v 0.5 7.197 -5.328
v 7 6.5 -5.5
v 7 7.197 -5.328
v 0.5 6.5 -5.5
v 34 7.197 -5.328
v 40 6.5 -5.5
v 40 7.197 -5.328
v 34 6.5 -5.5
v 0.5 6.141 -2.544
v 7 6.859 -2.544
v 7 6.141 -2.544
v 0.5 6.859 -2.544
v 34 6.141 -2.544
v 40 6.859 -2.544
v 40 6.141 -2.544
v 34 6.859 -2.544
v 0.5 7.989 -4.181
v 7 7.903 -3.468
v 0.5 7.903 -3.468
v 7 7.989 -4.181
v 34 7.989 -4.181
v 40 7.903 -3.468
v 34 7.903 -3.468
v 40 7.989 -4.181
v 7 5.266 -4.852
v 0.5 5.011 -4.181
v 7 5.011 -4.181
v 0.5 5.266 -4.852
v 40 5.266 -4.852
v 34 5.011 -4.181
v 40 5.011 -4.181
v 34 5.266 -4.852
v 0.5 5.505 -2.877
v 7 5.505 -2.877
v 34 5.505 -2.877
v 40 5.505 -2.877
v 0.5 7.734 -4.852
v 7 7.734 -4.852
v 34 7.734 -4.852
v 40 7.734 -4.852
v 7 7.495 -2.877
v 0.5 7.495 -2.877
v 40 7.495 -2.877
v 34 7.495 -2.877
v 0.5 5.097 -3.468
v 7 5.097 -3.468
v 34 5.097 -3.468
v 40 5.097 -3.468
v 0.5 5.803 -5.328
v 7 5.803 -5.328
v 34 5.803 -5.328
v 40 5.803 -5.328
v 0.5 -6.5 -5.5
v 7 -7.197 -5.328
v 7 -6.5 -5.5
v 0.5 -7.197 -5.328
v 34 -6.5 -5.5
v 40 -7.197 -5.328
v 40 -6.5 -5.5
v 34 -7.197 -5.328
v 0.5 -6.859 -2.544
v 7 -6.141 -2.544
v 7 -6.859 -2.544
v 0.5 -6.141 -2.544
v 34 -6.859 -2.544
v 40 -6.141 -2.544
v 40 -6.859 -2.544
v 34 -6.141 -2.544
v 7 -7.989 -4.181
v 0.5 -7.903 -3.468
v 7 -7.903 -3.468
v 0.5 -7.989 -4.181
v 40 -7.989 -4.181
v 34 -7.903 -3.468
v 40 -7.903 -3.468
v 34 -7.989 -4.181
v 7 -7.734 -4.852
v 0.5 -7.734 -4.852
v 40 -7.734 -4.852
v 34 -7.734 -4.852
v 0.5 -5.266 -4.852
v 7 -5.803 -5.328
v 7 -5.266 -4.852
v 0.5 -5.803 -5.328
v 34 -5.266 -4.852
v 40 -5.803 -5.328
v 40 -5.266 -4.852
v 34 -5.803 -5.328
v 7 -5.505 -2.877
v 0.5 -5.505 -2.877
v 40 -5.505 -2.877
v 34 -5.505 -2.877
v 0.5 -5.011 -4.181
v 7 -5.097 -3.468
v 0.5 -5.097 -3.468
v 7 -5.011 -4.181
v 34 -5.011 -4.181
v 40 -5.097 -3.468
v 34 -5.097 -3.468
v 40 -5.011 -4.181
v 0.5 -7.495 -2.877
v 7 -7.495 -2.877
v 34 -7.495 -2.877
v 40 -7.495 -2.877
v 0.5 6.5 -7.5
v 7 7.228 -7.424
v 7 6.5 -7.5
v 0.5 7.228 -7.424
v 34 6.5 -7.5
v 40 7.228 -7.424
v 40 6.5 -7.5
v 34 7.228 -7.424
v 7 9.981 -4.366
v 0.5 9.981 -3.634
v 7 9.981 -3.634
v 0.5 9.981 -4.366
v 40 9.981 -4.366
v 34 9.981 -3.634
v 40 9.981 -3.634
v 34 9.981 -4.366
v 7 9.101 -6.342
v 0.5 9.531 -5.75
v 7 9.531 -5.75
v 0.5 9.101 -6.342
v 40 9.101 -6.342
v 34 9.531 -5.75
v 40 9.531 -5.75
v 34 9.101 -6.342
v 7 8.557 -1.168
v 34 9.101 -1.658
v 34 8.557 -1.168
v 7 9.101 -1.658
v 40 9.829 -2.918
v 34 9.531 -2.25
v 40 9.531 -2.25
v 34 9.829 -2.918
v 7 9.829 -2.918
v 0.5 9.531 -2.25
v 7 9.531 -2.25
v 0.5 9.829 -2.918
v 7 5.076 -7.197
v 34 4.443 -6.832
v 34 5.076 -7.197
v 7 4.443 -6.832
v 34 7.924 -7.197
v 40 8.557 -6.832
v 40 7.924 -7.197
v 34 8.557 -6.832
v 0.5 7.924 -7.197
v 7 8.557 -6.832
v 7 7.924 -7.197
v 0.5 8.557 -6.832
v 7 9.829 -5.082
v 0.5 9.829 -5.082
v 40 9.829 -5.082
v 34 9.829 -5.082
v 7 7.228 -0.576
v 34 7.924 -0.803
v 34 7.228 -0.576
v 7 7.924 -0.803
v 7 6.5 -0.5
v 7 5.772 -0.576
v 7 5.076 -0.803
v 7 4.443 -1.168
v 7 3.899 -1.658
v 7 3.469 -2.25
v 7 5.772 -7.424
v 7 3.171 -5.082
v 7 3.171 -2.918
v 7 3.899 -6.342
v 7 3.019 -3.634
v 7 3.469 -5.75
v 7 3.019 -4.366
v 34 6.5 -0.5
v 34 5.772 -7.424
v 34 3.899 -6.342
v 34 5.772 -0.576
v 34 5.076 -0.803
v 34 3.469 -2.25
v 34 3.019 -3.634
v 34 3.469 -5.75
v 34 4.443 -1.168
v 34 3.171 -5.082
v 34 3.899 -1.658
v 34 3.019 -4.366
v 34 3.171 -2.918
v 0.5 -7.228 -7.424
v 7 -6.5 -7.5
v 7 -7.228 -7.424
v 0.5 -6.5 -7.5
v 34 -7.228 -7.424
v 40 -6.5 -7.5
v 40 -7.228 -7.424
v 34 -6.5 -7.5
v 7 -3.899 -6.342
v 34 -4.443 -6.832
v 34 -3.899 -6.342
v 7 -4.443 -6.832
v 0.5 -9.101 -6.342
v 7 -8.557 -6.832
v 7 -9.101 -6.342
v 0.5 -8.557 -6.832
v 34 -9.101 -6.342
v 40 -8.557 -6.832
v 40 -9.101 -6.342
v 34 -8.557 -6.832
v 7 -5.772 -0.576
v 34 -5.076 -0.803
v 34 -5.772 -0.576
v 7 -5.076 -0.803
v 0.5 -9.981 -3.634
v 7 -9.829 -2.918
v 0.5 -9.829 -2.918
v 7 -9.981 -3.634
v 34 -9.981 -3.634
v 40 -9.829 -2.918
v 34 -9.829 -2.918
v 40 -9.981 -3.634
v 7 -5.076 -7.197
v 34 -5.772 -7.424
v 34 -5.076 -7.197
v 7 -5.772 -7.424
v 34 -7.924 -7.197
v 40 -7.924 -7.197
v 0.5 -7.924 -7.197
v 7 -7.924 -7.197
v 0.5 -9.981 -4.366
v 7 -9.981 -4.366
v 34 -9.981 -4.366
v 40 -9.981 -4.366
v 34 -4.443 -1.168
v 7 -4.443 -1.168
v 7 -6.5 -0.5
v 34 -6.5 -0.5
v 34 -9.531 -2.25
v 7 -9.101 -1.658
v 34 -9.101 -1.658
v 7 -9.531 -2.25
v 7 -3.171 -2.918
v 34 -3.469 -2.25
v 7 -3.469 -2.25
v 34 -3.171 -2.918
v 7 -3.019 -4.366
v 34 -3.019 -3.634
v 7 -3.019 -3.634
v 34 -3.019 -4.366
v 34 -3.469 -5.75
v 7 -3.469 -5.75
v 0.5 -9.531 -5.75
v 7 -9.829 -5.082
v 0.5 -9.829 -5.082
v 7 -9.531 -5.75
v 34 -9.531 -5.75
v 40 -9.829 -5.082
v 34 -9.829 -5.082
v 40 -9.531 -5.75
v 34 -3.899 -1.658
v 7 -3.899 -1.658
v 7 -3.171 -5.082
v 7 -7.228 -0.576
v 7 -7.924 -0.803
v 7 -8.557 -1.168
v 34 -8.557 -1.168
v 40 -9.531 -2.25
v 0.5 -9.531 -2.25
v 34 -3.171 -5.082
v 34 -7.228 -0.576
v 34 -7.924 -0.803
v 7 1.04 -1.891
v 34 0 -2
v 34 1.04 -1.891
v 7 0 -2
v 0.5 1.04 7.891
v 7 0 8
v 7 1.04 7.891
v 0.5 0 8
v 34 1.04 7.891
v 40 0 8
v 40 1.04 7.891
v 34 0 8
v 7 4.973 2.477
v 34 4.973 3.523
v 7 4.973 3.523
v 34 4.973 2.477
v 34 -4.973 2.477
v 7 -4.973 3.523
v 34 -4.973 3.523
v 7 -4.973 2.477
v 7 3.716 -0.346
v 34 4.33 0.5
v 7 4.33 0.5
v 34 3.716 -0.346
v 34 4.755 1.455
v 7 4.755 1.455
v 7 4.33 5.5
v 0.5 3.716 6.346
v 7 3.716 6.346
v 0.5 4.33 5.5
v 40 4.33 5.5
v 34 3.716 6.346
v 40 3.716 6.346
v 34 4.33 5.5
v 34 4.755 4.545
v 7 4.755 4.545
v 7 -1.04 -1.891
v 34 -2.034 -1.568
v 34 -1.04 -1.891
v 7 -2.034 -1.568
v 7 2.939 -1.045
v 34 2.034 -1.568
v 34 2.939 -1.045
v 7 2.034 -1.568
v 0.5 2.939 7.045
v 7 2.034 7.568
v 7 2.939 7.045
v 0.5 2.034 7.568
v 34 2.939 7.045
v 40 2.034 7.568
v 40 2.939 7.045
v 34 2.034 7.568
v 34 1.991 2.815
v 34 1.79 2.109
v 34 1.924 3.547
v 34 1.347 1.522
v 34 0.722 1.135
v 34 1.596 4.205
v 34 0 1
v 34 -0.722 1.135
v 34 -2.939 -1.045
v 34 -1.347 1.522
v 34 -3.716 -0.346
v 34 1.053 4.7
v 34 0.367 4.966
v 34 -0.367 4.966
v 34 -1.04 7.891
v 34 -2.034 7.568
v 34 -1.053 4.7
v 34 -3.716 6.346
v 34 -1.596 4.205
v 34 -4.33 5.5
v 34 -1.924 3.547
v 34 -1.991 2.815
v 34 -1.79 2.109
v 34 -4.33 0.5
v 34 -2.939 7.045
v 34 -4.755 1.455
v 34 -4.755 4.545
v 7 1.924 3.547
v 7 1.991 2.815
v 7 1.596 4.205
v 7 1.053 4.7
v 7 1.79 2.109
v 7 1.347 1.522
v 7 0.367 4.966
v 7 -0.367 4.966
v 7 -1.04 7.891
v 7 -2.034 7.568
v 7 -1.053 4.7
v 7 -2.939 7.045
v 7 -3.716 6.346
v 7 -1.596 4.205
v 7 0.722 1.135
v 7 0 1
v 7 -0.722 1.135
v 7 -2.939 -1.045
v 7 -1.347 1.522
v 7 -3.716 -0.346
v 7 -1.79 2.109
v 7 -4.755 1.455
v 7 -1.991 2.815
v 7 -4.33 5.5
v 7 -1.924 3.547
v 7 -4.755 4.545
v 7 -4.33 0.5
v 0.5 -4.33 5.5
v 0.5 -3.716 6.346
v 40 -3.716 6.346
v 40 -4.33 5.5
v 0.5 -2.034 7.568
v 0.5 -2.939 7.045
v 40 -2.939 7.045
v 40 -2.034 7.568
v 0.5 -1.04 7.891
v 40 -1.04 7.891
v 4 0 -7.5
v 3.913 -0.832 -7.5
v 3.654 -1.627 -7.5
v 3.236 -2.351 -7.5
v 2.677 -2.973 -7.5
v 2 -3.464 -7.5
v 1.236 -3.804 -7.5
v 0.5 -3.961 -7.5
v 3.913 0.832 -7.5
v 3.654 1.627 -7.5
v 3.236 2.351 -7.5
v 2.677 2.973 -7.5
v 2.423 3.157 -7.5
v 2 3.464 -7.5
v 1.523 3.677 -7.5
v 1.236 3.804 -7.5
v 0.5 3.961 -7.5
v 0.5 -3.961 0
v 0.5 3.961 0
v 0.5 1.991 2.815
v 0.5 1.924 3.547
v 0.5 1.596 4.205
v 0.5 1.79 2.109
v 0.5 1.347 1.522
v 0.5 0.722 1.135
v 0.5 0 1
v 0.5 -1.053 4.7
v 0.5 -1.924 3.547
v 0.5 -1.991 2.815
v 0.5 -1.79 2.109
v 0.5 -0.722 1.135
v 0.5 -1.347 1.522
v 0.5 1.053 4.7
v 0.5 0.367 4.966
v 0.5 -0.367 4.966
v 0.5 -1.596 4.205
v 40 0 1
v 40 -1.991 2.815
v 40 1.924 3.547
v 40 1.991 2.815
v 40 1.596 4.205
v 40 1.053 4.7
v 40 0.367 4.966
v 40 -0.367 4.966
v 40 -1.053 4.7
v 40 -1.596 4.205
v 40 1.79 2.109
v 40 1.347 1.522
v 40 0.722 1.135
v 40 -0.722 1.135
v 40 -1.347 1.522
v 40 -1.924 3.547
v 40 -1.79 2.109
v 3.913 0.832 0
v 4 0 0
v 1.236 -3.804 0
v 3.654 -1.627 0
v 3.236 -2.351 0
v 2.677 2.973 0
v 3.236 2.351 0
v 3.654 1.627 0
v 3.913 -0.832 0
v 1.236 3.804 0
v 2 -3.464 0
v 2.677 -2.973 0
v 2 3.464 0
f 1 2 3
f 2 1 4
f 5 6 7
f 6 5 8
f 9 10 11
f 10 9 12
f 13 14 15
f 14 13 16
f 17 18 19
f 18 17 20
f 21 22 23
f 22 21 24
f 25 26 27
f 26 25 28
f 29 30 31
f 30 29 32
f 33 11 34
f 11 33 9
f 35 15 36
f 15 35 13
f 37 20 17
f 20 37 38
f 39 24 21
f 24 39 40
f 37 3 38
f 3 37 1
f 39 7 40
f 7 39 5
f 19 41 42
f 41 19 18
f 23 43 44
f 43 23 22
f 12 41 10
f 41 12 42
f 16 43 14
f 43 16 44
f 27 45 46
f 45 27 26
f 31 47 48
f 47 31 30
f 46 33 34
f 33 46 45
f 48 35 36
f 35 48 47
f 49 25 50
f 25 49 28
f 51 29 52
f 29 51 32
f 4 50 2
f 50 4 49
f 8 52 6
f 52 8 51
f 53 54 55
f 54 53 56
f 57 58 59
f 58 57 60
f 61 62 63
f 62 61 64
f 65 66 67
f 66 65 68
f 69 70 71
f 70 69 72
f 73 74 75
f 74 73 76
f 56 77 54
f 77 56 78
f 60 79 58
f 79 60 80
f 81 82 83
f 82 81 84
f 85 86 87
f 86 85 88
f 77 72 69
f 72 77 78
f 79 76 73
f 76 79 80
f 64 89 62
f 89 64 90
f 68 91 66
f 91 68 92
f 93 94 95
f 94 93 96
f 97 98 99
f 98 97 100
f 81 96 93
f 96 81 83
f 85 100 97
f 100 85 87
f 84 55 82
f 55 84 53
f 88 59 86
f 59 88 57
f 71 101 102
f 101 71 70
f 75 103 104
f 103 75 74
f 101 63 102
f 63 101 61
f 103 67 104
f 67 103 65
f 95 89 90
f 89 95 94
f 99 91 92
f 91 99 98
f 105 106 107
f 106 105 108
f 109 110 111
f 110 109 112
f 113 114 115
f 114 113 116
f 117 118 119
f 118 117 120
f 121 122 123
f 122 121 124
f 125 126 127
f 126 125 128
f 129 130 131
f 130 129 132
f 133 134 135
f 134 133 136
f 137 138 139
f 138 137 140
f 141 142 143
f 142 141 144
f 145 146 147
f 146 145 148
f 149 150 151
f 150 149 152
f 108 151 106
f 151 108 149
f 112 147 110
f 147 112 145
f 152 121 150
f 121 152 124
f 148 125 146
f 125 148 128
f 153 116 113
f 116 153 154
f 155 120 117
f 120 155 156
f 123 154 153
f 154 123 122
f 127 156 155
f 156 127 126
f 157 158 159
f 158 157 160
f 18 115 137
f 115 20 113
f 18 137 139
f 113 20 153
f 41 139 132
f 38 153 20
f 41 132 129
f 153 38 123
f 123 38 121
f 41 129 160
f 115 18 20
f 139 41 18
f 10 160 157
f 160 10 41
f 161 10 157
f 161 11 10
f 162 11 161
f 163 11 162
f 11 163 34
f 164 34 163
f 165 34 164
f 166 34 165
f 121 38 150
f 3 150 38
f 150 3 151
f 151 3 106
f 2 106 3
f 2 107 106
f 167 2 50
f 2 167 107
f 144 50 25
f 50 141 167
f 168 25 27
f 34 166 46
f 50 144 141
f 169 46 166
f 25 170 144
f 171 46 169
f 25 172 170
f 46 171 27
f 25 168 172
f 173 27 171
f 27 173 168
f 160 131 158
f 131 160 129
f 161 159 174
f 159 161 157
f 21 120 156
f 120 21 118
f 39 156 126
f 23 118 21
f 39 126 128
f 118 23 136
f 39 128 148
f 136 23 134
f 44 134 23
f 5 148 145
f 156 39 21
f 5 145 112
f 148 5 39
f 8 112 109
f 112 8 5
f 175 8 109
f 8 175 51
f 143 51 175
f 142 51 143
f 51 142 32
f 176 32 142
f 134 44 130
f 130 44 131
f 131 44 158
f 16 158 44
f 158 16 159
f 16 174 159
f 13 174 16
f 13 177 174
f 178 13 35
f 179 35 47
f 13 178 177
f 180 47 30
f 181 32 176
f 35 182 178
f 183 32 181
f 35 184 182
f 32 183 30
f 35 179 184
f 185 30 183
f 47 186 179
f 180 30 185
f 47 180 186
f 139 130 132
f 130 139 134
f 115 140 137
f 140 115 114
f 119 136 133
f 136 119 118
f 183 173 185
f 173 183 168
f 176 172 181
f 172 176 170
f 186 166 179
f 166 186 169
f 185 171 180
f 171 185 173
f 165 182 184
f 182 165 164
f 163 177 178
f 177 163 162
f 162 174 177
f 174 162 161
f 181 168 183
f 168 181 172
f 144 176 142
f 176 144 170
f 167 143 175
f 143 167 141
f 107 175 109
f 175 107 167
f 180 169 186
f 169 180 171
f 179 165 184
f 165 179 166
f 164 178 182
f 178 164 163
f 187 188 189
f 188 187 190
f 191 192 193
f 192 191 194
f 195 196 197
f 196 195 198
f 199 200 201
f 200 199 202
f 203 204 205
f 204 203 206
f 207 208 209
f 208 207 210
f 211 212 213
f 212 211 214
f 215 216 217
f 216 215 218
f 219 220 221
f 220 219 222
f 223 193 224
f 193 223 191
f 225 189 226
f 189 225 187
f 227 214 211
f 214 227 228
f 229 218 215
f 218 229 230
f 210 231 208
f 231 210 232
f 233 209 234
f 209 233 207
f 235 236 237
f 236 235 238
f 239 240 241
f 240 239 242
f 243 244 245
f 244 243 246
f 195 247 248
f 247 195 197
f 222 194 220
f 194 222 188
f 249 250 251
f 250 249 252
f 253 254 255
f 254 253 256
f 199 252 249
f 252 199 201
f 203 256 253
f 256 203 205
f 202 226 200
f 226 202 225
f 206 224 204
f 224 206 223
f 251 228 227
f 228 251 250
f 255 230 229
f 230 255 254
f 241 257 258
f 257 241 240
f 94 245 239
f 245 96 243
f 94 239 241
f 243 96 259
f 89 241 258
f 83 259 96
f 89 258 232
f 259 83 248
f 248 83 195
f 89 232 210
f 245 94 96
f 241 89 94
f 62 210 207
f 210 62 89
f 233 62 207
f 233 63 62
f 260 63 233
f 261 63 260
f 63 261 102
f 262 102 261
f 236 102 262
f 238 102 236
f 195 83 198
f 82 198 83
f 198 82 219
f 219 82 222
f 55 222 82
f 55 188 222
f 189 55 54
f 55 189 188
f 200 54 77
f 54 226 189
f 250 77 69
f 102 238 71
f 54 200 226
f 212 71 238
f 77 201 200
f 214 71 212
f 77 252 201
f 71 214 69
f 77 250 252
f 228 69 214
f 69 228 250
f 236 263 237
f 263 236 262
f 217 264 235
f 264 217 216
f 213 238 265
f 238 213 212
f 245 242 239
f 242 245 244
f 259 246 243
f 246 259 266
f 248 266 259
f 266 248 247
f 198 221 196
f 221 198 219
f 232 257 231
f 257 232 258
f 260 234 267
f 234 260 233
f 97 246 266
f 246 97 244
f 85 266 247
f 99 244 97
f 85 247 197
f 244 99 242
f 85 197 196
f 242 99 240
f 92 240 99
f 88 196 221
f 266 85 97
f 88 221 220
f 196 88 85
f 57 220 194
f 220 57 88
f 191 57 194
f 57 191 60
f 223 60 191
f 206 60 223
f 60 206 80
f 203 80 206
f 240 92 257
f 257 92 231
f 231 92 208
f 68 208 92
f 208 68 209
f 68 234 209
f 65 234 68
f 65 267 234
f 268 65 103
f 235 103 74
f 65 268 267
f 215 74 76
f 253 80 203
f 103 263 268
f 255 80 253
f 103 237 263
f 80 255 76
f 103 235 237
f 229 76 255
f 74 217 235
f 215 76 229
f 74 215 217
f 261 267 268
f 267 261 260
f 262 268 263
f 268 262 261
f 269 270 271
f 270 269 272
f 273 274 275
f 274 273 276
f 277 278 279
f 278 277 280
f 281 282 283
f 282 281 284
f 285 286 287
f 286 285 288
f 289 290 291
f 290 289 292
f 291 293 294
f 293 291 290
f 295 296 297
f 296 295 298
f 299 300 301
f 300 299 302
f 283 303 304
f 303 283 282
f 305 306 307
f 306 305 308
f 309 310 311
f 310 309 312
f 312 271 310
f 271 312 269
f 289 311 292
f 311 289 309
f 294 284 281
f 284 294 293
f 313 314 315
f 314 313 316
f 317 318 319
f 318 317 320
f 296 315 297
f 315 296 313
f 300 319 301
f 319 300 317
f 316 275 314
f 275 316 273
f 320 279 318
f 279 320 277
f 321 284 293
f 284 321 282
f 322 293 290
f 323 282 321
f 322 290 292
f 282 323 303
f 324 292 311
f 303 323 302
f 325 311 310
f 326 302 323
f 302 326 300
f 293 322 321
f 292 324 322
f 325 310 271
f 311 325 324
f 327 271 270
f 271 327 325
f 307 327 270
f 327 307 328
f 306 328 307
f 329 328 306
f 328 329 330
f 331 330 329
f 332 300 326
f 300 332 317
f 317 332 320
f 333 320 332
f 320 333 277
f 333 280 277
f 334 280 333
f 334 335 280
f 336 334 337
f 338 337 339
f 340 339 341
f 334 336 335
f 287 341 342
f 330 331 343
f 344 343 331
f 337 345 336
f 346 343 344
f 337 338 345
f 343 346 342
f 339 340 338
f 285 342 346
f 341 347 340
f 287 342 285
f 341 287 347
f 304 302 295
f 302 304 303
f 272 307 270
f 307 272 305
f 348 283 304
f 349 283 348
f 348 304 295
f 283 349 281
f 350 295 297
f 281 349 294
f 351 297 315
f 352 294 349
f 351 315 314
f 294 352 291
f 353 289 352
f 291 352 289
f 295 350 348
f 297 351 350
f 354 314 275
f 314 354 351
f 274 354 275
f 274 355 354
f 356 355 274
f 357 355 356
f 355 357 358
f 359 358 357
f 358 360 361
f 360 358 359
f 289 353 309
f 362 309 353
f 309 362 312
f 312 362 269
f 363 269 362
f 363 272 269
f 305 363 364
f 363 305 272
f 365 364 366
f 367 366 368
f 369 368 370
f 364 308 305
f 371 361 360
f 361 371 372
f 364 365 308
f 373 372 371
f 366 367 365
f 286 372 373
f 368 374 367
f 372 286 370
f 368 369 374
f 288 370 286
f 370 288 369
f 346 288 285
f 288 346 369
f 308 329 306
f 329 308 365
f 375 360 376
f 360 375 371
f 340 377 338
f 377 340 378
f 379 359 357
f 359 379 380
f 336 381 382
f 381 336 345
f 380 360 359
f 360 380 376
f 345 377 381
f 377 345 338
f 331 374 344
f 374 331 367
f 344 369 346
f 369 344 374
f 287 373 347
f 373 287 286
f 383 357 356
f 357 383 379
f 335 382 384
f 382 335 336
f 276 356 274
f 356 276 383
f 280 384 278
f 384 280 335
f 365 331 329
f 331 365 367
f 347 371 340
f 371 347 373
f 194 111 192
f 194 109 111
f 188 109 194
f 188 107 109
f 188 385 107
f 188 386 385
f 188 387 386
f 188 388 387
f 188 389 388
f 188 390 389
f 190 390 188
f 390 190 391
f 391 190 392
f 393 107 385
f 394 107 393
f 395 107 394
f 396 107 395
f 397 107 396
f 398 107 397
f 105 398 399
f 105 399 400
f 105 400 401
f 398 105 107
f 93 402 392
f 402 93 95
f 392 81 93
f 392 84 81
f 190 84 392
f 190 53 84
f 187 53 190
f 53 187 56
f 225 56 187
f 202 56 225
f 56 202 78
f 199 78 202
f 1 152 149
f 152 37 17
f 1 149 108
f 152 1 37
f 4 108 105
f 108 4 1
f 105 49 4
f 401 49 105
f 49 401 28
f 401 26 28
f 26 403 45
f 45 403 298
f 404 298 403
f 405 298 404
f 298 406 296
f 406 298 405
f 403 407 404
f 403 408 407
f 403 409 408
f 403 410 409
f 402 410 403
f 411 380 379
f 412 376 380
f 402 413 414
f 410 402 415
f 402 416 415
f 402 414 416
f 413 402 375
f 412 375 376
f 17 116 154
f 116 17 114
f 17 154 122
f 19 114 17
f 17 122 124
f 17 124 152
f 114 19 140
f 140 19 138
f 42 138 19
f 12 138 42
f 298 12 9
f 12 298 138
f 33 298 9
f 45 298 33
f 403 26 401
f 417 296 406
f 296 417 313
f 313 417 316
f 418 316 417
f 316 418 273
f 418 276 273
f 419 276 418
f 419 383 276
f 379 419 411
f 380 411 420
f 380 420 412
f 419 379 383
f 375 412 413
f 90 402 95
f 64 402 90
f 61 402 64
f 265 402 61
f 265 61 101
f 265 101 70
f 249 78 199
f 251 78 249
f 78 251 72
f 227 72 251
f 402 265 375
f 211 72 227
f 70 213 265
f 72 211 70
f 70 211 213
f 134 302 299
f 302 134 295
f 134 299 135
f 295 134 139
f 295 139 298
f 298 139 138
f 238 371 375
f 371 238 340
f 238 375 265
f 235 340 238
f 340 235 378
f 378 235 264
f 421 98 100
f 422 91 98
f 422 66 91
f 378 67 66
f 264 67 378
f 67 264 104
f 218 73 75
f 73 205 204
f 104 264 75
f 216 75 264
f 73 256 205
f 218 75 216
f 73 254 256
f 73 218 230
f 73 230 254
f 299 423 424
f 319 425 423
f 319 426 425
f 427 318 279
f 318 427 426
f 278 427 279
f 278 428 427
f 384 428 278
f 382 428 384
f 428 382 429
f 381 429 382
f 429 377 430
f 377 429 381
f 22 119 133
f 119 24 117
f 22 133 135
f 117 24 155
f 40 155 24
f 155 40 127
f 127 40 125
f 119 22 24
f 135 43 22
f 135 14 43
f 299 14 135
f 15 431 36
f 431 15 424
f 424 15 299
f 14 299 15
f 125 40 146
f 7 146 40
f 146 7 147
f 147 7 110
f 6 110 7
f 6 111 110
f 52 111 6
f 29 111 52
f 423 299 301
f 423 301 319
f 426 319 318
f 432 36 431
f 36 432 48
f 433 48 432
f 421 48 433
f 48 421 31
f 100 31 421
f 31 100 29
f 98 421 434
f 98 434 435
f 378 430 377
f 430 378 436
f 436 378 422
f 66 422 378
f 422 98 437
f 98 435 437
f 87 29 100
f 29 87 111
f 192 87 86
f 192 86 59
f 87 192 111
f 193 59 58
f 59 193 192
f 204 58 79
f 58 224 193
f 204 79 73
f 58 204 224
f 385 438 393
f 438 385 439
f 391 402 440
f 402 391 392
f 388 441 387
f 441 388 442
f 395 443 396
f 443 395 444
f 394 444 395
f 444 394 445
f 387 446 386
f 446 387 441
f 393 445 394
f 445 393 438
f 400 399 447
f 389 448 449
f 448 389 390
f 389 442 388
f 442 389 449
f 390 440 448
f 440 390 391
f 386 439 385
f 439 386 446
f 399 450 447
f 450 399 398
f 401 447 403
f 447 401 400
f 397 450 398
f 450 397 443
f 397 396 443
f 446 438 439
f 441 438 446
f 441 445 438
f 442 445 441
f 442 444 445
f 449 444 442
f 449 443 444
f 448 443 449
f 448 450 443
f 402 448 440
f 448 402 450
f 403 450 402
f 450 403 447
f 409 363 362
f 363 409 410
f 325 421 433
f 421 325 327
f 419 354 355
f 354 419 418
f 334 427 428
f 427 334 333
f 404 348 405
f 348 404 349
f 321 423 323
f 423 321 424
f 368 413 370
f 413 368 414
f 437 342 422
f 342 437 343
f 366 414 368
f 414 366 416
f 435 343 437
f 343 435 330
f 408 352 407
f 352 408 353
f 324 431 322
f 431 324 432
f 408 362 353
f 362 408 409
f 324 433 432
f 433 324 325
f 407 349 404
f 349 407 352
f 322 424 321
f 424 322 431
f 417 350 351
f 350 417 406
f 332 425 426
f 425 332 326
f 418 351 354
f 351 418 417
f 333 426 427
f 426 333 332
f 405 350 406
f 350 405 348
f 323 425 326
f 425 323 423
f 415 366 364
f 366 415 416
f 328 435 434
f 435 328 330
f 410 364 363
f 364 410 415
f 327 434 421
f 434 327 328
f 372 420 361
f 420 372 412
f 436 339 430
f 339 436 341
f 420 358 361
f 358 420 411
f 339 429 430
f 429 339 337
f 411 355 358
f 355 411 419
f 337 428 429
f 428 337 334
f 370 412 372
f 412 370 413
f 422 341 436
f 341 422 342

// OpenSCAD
$fs=.75;

rotate(a = [0, 90, 0]) {
	difference() {
		translate(v = [0, 0, 0.5000000000]) {
			hull() {
				union() {
					translate(v = [4, 6.5000000000, 0]) {
						cylinder(d = 7, h = 39.5000000000);
					}
					mirror(v = [0, 1, 0]) {
						translate(v = [4, 6.5000000000, 0]) {
							cylinder(d = 7, h = 39.5000000000);
						}
					}
				}
				translate(v = [-3, 0, 0]) {
					cylinder(d = 10, h = 39.5000000000);
				}
			}
		}
		rotate(a = [0, 90, 0]) {
			cylinder(d = 8.0000000000, h = 20);
		}
		union() {
			translate(v = [4, 6.5000000000, 0]) {
				translate(v = [0, 0, -50.0000000000]) {
					cylinder(d = 3, h = 100);
				}
			}
			mirror(v = [0, 1, 0]) {
				translate(v = [4, 6.5000000000, 0]) {
					translate(v = [0, 0, -50.0000000000]) {
						cylinder(d = 3, h = 100);
					}
				}
			}
		}
		translate(v = [-3, 0, 0]) {
			translate(v = [0, 0, -50.0000000000]) {
				cylinder(d = 4, h = 100);
			}
		}
		translate(v = [0, 0, 7]) {
			union() {
				translate(v = [4, 6.5000000000, 0]) {
					cylinder(d = 7, h = 27.0000000000);
				}
				mirror(v = [0, 1, 0]) {
					translate(v = [4, 6.5000000000, 0]) {
						cylinder(d = 7, h = 27.0000000000);
					}
				}
				translate(v = [-3, 0, 0]) {
					cylinder(d = 10, h = 27.0000000000);
				}
			}
		}
	}
}
/***********************************************
*********      SolidPython code:      **********
************************************************
 
from solid import *
from solid import extensions

class Object:
    pass


rod=Object()
rod.d=8.0

nema17 = Object()
nema17.side = 43.
nema17.holeDistance = 31.0
nema17.screwD= 3.
nema17.height = 34. #47 for the long ones, 34 for the short ones


bearing = Object()
bearing.outD = 15.0
bearing.length = 24.0

# to place the rod supports on top of the nema17
supportDepth=10
xRodHole = cylinder(d=rod.d, h=20).rot(y=90)
xSupport = ( cube([supportDepth,nema17.side,rod.d/2+1]).align('left','bottom')
             - xRodHole.move(z=-.5)
             - cylinder(d=nema17.screwD,h=12).center().move(x=5,y=nema17.holeDistance/2.).mirrorCopy('y')
           ).rot(x=180)


bearingShape = cylinder(d=bearing.outD, h= bearing.length+1).center()

#minimal y cart, z motor will be placed in between the rails
yRodDistance = 60.0 # rounding up from nema17.side + bearing.outD
wall=2.0
cartWidth = 2*bearing.length
yBearings = bearingShape.move(z=bearing.length/2).mirrorCopy('z').move(x=yRodDistance/2).mirrorCopy('x')
yCart = ( ( cylinder(d= bearing.outD + 2*wall, h= cartWidth).center().rot(x=90).move(x=yRodDistance/2).mirrorCopy('x')
          + cube([yRodDistance, cartWidth, bearing.outD/2+wall]).align('bottom').move(z=-bearing.outD/2-wall)
          + cube([yRodDistance+bearing.outD+2*wall, cartWidth, bearing.outD/2+wall]).align('top').move(z=bearing.outD/2+wall)

          ) - yBearings.rot(x=90)
            - cube([nema17.side, cartWidth, bearing.outD/2-3]).align('top')
            - cube([nema17.side, cartWidth, bearing.outD]).align('bottom')
            - cube([yRodDistance+20, cartWidth, 3]).align('bottom').move(z=-bearing.outD/2-wall)
            - cylinder(d=3,h=10).move([nema17.holeDistance/2, nema17.holeDistance/2, -bearing.outD/2]).mirrorCopy('x').mirrorCopy('y').debug()
            - cylinder(d=nema17.holeDistance, h =10).move(z=-bearing.outD/2)
          )



#supports for holding the y rods in from the x bearings
bearingCover = cylinder(d= bearing.outD + 2*wall, h= bearing.length).center().rot(y=90)
baseBlock = hull( bearingCover
                  + cube([bearing.outD+2,10,bearing.outD+2]).align('back').move(y=bearing.outD/2+wall))
capScrews = cylinder(d=3., h=bearing.outD + 2*wall).center().move(x=rod.d/2+3./2+1,y=12).mirrorCopy('x')
rodHole = cylinder(d=rod.d,h=10).rot(x=-90).move(y=bearing.outD/2+wall)
#capTopBase = cube([bearing.length, 11, bearing.outD]).center('x').move(y=bearing.outD/2+wall)
#capTopBase = polygon([[0,0],[0,10],[10,10],[10,-3]]).linear_extrude(bearing.length,True).rot(y=-90).move(y=bearing.outD/2+wall)
capTopBase = cube([bearing.length, 20, bearing.outD]).center('x')-bearingCover

baseSupport = baseBlock - rodHole - capScrews

ySupport = part(cylinder(d= bearing.outD + 2*wall, h= yRodDistance + bearing.length).center().rot(y=90)
                 - hole(cylinder(d= bearing.outD, h= yRodDistance + bearing.length).center().rot(y=90))
                 + ( baseSupport
                     * cube(50).align('top')
                   ).move(x=yRodDistance/2).mirrorCopy('x')
                 - cube(1000).align('top').move(z=-bearing.outD/2+1)
                 )

ySupportRodCap = ( baseSupport
                * capTopBase
                - cube([bearing.length,50,1]).align('bottom')
                - cube([bearing.length,10,10]).center('xy')
                )

#support for z rods placed on the falt surface of the yCart above the bearings
zRodDistance = 31.
rodSupport = (cylinder(d=rod.d + 3, h=6) - cylinder(d=rod.d, h=6+1)).move(y=zRodDistance / 2)
beltGuide = ( cube([bearing.outD, bearing.length-zRodDistance/2, 6]).center('x')
              - cylinder(d=rod.d + 6,h=6+1)
              - cube([1,20,6+1]).center('x')).move(y=zRodDistance/2)
zSupport = ( cube([bearing.outD,2*bearing.length,wall]).center('xy')
             + rodSupport.move(z=wall).mirrorCopy('y')
             + beltGuide.move(z=wall).mirrorCopy('y')
           )

zstepper = cube([nema17.side,nema17.side,34]).center('xy').move(z=-bearing.outD/2).color('gray')


yCartZSupport = yCart + zSupport.move(x=yRodDistance/2 ,z=bearing.outD/2)


def xTailBase(h):
    return hull([cylinder(d=3+4,h=h).move(x= 4, y=3./2+rod.d/2+1).mirrorCopy('y'),
                 cylinder(d=4+6, h=h).move(x=-3)
                ]).move(z=.5)

capScrewHoles = cylinder(d=3,h=100).center().move(x= 4, y=3./2+rod.d/2+1).mirrorCopy('y')
pulleyScrewHole = cylinder(d=4,h=100).center().move(x= -3)
nutCuts = (cylinder(d=3+4,h=nema17.height-7).move(x= 4, y=3./2+rod.d/2+1).mirrorCopy('y')
          + cylinder(d=4+6, h=nema17.height-7).move(x=-3)).move(z=7)
xTailSupport = ( xTailBase(nema17.height+1.5+rod.d/2.)
                 - xRodHole
                 - capScrewHoles
                 - pulleyScrewHole
                 - nutCuts
               )
xTailCap = ( xTailBase(7)
             - xRodHole
             - capScrewHoles
             - pulleyScrewHole
            )

def xFrontBase(h):
    return hull([cylinder(d=3+4,h=h).move(y=3./2+rod.d/2+1).mirrorCopy('y'),
                ]).move(x=3.5,z=.5)

capScrewHoles = cylinder(d=3,h=100).center().move(x=3.5,y=3./2+rod.d/2+1).mirrorCopy('y')
nutCuts = (cylinder(d=3+4,h=nema17.height-7).move(x=3.5,y=3./2+rod.d/2+1).mirrorCopy('y')
          ).move(z=7)
xSupportH=nema17.height+1.5+rod.d/2.
nemaSupport = ( hull(cube([10,nema17.side,1.5]).align('right','top').move(z=xSupportH-nema17.height)
                     + cylinder(d=3+4,h=xSupportH-nema17.height-.5).move(y=3./2+rod.d/2+1).mirrorCopy('y').move(x=3.5,z=.5)
                    )
                - cylinder(d=3,h=10).move(x=-(nema17.side-nema17.holeDistance)/2,y=nema17.holeDistance/2).mirrorCopy('y'))
nemaSupport = ( hull(cylinder(d=3+4,h=1.5).move(x=-(nema17.side-nema17.holeDistance)/2,y=nema17.holeDistance/2,z=xSupportH-nema17.height).mirrorCopy('y')
                     + cylinder(d=3+4,h=xSupportH-nema17.height-.5).move(y=3./2+rod.d/2+1).mirrorCopy('y').move(x=3.5,z=.5)
                    )
                - cylinder(d=3,h=10).move(x=-(nema17.side-nema17.holeDistance)/2,y=nema17.holeDistance/2).mirrorCopy('y'))
xFrontSupport = ( xFrontBase(xSupportH)
                 + nemaSupport
                 - xRodHole.move(x=-10)
                 - capScrewHoles
                 - nutCuts
               )
xFrontCap = ( xFrontBase(7)
             - xRodHole.move(x=-10)
             - capScrewHoles
            )


zTopH=5.
zBearingD = 16.
zTopBase = hull(cylinder(d=rod.d+6,h=zTopH).move(y=zRodDistance/2).mirrorCopy('y')
            +cylinder(d=zBearingD+6,h=zTopH).move(x=-yRodDistance/2))
zHoles =  (cylinder(d=rod.d,h=zTopH).move(y=zRodDistance/2).mirrorCopy('y')
           + cylinder(d=zBearingD,h=zTopH).move(x=-yRodDistance/2))
zTop = zTopBase - zHoles




zNutD0 = 10.
zNutD1 = 22.
zNutH0 = 10.
drillD = 36.

base = ( hull(cylinder(d=bearing.outD+6,h=bearing.length).move(y=zRodDistance/2).mirrorCopy('y')
              + cylinder(d=zNutD1+2,h=bearing.length).move(x=-yRodDistance/2)
              + cylinder(d=drillD+6,h=bearing.length).move(x=drillD/2+5)
              + cube([.1,25,zNutH0]).center('y').move(x=drillD+5)
              )
            + cube([8,25,zNutH0]).center('y').move(x=drillD+5)
        )

holes =  (cylinder(d=bearing.outD, h=bearing.length).move(y=zRodDistance/2).mirrorCopy('y')
           + cylinder(d=zNutD0+1,h=bearing.length).move(x=-yRodDistance/2)
           + cylinder(d=drillD,h=bearing.length).move(x=drillD/2+5)
           + cube([20,2,zNutH0]).center('xy').move(x=drillD+7)
           + cylinder(d=3,h=30).center().rot(x=90).move(x=drillD+9,z=zNutH0/2).debug()
           )

zNutDrills = cylinder(d=3,h=bearing.length).move(x=17./2).rot(z=45).mirrorCopy('y').mirrorCopy('x').move(x=-yRodDistance/2)

def ushape(p,f=.5):
    return (cylinder(d=100.*f,h=100.).center().rot(x=90)-cube([500.*f,100,100]).center('yz')
            +cube([50.*(1-f),100.,100.*f]).center('yz')

           ).move(x=(.5-f)*-50).resize(p)

pD=[40,60,30]
pN=[35,60,30]
profileCuts = (ushape(pD,.5).move(x=pD[0]/2+bearing.outD/2,z=pD[2]/2+zNutH0)+
           ushape(pN,.4).mirror('x').move(x=-pN[0]/2-bearing.outD/2,z=pN[2]/2+zNutH0)
          )

sideCuts = cube([100,20,bearing.length]).center('x').move(y=zRodDistance/2+bearing.outD/2-1).mirrorCopy('y')

zDrillCart_ = base - holes - zNutDrills  - profileCuts

zDrillCart = zDrillCart_.copy() #- sideCuts
zDrillCart0 = zDrillCart_.copy().intersection(cube([60,60,bearing.length]).center('y').move(x=-bearing.outD/2+1))

scene = xFrontSupport +xFrontCap.move(x=-20)


'''
scene = ( xSupport.move(x=-100)
          + ySupport + ySupportRodCap.move(x=-yRodDistance / 2, z=3)
          + (yCartZSupport ).move(y=50)
        )
'''
scad_render_to_file(scene, 'routerParts.scad', '$fs=.75;')

#scad_render_to_file(xSupport, 'routerParts_xSupport.scad', '$fs=.75;')
#scad_render_to_file(ySupport, 'routerParts_ySupport.scad', '$fs=.75;')
#scad_render_to_file(ySupportRodCap, 'routerParts_ySupportCap.scad', '$fs=.75;')
#scad_render_to_file(yCartZSupport, 'routerParts_yCart.scad', '$fs=.75;')
scad_render_to_file( xTailSupport.rot(y=90), 'routerParts_xTailSupport.scad', '$fs=.75;')
scad_render_to_file( xTailCap.rot(y=90), 'routerParts_xTailCap.scad', '$fs=.75;')
scad_render_to_file( xFrontSupport.rot(y=90), 'routerParts_xFrontSupport.scad', '$fs=.75;')
scad_render_to_file( xFrontCap.rot(y=90), 'routerParts_xFrontCap.scad', '$fs=.75;')
#scad_render_to_file( zTop, 'routerParts_zTop.scad', '$fs=.75;')
#scad_render_to_file( zDrillCart, 'routerParts_zDrillCart.scad', '$fs=.75;')
#scad_render_to_file( zDrillCart0, 'routerParts_zDrillCart0.scad', '$fs=.75;')
 
 
************************************************/
